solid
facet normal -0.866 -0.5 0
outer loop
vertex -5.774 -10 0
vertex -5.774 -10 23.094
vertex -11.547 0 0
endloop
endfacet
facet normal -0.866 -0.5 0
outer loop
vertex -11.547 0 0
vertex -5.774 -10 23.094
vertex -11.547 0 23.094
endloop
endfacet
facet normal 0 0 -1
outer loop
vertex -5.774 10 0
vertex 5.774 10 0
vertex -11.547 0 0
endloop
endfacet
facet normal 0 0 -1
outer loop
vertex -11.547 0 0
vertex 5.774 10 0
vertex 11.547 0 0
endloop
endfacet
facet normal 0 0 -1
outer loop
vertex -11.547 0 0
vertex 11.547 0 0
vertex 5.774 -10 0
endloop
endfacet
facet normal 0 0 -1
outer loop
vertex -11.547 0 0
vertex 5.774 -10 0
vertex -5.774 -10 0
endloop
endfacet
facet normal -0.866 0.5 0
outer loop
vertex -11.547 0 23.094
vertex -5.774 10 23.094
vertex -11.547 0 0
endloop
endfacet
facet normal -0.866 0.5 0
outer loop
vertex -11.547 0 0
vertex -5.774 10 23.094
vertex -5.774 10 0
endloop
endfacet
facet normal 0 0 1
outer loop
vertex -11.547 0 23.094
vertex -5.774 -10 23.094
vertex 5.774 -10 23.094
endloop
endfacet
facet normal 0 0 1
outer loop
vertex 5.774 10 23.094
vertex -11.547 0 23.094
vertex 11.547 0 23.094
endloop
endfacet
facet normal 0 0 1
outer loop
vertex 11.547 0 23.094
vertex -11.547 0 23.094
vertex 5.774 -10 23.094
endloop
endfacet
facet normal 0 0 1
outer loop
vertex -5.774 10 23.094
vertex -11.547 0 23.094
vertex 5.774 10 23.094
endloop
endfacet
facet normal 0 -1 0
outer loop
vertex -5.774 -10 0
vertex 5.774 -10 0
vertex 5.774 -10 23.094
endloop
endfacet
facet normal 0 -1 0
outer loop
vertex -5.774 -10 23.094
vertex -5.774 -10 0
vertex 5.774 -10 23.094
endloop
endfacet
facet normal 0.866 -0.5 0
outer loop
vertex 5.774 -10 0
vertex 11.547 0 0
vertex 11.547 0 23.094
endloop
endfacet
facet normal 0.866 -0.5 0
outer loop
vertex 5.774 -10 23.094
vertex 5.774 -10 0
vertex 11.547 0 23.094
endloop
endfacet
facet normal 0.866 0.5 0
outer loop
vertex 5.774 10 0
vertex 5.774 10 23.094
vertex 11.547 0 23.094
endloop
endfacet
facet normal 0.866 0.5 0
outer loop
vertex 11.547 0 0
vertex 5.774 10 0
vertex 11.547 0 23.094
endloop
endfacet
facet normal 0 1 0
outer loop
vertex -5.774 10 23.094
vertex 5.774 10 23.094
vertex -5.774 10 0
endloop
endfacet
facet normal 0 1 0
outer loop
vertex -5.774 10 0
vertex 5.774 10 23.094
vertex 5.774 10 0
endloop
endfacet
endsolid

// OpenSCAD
$fn=100;

volume=8000;
height_to_diagonal_ratio=1;

c=(3*sqrt(3)/2);
a=pow(volume/c/height_to_diagonal_ratio/2, 1/3);

//a=10;
x=a*cos(60);
y=a*sin(60);
h=height_to_diagonal_ratio*a*2;
v=c*pow(a,2)*h;
echo("a=",a);
echo("diagonal=",a*2);
echo("h=",h);
echo("v=",v);

linear_extrude(height=h)
polygon(points=[
	[a,0], [x,y], [-x,y], [-a,0], [-x,-y], [x,-y]
]);

	
